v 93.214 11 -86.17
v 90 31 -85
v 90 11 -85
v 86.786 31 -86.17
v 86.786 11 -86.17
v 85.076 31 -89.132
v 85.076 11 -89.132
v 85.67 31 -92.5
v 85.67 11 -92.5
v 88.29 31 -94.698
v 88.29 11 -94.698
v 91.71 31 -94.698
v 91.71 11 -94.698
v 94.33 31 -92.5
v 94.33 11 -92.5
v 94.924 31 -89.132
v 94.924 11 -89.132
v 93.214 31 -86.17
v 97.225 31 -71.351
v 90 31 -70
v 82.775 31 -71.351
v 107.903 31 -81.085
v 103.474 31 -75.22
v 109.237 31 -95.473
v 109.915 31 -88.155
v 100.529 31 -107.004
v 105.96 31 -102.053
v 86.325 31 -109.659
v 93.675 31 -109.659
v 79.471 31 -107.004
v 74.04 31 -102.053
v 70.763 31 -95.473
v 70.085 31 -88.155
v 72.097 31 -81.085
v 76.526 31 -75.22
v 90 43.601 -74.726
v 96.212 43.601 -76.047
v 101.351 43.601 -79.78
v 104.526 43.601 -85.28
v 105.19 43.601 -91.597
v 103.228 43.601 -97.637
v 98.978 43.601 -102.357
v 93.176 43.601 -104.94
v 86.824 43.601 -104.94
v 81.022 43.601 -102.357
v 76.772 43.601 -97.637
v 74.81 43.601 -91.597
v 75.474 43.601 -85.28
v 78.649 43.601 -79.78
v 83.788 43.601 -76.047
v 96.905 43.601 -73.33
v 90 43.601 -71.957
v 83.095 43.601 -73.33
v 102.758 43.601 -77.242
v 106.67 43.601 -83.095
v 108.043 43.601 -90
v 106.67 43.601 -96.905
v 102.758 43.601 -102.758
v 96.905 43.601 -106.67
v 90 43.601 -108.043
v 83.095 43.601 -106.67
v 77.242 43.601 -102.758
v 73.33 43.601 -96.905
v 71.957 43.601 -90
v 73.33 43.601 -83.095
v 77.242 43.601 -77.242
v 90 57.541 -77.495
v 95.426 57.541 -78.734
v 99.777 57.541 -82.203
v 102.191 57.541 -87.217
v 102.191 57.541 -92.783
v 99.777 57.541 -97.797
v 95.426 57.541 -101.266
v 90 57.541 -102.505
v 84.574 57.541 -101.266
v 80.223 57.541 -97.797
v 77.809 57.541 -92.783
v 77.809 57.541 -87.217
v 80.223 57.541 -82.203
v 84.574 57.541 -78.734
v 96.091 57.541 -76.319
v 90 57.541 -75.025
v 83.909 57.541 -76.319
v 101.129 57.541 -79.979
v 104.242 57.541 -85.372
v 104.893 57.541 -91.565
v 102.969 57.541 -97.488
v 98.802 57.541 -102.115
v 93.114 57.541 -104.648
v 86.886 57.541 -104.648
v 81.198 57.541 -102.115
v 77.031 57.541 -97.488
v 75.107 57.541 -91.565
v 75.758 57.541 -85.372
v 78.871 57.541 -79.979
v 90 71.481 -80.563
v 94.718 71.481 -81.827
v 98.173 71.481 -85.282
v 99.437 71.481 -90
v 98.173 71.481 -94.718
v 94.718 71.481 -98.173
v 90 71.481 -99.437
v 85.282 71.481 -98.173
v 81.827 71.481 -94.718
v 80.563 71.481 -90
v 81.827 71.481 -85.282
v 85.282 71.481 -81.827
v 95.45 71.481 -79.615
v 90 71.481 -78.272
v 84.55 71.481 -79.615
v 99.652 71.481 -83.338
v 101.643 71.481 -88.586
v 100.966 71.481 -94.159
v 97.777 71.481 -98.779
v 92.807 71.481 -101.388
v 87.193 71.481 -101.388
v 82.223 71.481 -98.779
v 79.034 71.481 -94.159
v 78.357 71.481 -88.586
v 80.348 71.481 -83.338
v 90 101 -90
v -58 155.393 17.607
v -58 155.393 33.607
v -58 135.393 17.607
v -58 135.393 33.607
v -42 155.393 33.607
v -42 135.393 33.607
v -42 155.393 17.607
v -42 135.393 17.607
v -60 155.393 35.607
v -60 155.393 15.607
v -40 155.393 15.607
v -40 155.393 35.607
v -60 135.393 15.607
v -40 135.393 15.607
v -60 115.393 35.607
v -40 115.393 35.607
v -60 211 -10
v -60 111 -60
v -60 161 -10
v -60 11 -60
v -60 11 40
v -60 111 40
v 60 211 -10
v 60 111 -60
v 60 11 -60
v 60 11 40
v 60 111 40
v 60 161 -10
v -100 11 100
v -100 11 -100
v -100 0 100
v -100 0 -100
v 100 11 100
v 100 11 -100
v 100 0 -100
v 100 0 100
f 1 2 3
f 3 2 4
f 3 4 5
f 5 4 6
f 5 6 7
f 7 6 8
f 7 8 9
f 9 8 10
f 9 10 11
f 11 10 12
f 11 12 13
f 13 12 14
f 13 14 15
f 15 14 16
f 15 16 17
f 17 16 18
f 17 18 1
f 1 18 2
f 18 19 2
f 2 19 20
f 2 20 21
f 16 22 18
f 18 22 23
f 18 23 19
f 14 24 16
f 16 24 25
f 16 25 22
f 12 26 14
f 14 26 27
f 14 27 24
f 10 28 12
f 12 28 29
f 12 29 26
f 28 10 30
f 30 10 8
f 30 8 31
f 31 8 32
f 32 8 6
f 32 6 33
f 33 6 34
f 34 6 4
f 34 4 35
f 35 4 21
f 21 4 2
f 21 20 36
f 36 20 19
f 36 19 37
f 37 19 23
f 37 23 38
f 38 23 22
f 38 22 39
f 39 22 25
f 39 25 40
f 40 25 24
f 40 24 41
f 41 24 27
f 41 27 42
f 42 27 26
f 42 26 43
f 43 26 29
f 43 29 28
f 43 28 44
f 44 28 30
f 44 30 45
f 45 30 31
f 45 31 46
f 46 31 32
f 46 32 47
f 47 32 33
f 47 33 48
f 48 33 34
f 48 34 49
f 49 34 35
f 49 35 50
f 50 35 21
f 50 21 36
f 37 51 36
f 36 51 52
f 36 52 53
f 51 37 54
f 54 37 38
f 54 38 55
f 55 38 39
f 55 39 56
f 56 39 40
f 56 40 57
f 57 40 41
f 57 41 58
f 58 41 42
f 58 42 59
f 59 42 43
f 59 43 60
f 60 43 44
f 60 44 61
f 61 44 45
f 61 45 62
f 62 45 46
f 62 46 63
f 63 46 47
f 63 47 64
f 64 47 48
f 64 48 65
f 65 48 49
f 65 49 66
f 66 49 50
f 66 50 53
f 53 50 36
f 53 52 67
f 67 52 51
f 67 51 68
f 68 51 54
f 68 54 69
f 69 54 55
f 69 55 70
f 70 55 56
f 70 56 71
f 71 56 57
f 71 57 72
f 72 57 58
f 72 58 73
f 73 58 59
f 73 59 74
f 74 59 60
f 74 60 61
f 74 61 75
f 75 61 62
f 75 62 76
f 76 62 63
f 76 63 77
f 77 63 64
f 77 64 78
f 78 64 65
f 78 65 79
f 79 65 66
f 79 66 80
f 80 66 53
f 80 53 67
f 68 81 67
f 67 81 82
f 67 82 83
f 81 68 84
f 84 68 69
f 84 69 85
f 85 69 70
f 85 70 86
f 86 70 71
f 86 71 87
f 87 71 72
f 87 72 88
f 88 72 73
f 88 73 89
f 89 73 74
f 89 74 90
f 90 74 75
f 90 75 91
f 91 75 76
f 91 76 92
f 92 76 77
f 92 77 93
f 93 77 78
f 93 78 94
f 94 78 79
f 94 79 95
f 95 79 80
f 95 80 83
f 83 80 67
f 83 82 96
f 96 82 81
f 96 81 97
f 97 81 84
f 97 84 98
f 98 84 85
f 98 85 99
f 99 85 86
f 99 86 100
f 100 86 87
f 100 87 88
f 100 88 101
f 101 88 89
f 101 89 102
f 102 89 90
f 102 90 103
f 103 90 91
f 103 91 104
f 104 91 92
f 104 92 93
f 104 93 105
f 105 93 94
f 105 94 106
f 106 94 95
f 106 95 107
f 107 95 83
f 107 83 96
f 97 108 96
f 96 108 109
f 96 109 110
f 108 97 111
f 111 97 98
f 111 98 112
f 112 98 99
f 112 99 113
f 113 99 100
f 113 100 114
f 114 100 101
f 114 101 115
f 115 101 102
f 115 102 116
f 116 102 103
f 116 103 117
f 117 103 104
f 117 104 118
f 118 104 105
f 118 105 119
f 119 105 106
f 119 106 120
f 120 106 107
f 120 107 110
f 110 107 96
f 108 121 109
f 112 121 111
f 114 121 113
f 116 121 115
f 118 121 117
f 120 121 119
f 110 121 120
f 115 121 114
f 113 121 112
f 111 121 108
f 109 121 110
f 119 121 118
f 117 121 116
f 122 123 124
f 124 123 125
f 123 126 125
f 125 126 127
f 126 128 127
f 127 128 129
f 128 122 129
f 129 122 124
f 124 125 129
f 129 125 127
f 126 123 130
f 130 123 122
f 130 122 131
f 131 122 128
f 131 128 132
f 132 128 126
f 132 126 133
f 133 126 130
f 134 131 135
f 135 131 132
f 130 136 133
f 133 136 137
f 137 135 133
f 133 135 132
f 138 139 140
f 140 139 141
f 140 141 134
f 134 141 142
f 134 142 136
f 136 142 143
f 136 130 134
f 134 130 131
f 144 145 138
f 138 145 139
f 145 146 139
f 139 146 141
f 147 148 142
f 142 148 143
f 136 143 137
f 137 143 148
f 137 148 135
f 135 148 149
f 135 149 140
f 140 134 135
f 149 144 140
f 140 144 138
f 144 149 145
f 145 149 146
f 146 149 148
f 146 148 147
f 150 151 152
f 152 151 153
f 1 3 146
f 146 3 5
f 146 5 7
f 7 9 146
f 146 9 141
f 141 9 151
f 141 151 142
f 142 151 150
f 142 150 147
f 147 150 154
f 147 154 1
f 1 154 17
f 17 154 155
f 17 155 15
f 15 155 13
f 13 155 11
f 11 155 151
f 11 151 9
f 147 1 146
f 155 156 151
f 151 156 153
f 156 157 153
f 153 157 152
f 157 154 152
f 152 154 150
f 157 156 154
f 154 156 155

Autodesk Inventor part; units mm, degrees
sketch "Sketch1" plane through (0, 0, 0) normal (1, 0, 0) x (0, 1, 0)
  line L0 (11, 100) -> (0, 100)
  line L1 (0, 100) -> (0, -100)
  line L2 (0, -100) -> (11, -100)
  line L3 (11, -100) -> (11, 100)
  line L4 (-2.2, 0) -> (13.2, 0) projected
  line L5 (0, 140) -> (0, -140) projected
  point P0 (0, 0)
  point P1 (11, 0)
  dimension "d0" = 200
  dimension "d1" = 11
  dimension "d2" = 0
extrude "Extrusion1" add sketch "Sketch1" along normal mid plane 200
sketch "Sketch2" plane through (0, 0, 0) normal (1, 0, 0) x (0, 1, 0)
  line L0 (111, 40) -> (11, 40)
  line L1 (11, 40) -> (11, -60)
  line L2 (11, -60) -> (111, -60)
  line L3 (111, -60) -> (111, 40)
  line L4 (-32.1032, 0) -> (192.619, 0) projected
  line L5 (11, -100) -> (11, 100) projected
  line L6 (111, 40) -> (161, 40)
  line L7 (161, 40) -> (161, -10)
  line L8 (161, -10) -> (111, -10)
  line L9 (111, -10) -> (111, 40)
  line L10 (111, -60) -> (211, -60)
  line L11 (211, -60) -> (211, -10)
  line L12 (211, -10) -> (111, -10)
  line L13 (111, -10) -> (111, -60)
  line L14 (111, 40) -> (161, -10)
  line L15 (111, -60) -> (211, -10)
  point P0 (0, 0)
  dimension "d5" = 100
  dimension "d6" = 40
  dimension "d7" = 100
  dimension "d8" = 0
  dimension "d9" = 50
  dimension "d10" = 50
  dimension "d11" = 100
  dimension "d12" = 50
extrude "Extrusion2" add sketch "Sketch2" along normal mid plane 120 contours L3 L4 L1 L0 | L14 L4 L3 | L4 L14 L8 L3 | L3 L2 L1 L4 | L8 L12 L15 L3
sketch "Sketch3" plane through (-60, 0, 0) normal (-1, 0, 0) x (0, 0, 1)
  line L0 (15.607, 155.393) -> (35.607, 155.393)
  line L1 (35.607, 155.393) -> (35.607, 135.393)
  line L2 (35.607, 135.393) -> (15.607, 135.393)
  line L3 (15.607, 135.393) -> (15.607, 155.393)
  line L4 (40, 111) -> (-10, 161) projected
  line L5 (35.607, 135.393) -> (35.607, 115.393)
  line L6 (-10, 161) -> (40, 111) projected
  line L7 (15.607, 135.393) -> (35.607, 115.393)
  point P0 (0, 0)
  dimension "d15" = 20
  dimension "d16" = 20
  dimension "d17" = 4.393
extrude "Extrusion3" add sketch "Sketch3" against normal blind 20
sketch "Sketch4" plane through (-60, 155.393, 35.607) normal (0, 1, 0) x (1, 0, 0)
  line L0 (20, 20) -> (20, 0) projected
  line L1 (0, 20) -> (20, 20) projected
  line L2 (0, 0) -> (0, 20) projected
  line L3 (0, 0) -> (20, 0) projected
  line L4 (18, 2) -> (18, 18)
  line L5 (18, 18) -> (2, 18)
  line L6 (2, 18) -> (2, 2)
  line L7 (2, 2) -> (18, 2)
  point P0 (60, 35.607)
  dimension "d20" = 2
extrude "Extrusion4" cut sketch "Sketch4" against normal blind 20 contours L7 L6 L5 L4
sketch "Sketch5" plane through (-100, 11, 100) normal (0, 1, 0) x (1, 0, 0)
  line L0 (200, 200) -> (200, 0) projected
  line L1 (0, 200) -> (200, 200) projected
  point P0 (100, 100)
  point P1 (190, 190)
  dimension "d23" = 10
  dimension "d24" = 10
ref_plane "Work Plane1" through (90, 11, -90) normal (1, 0, 0) x (0, 1, 0)
sketch "Sketch7" plane through (90, 11, -90) normal (1, 0, 0) x (0, 1, 0)
  line L0 (0, -10) -> (0, 190) projected
  line L1 (0, 0) -> (20, 0)
  line L2 (20, 0) -> (20, 5)
  line L3 (20, 5) -> (0, 5)
  line L4 (0, 5) -> (0, 0)
  line L5 (20, 0) -> (20, 20)
  line L6 (90, 0) -> (60.481, 11.7284)
  line L7 (60.481, 11.7284) -> (60.481, 5)
  line L8 (60.481, 9.4368) -> (46.541, 14.9754)
  line L9 (46.541, 14.9754) -> (46.541, 5)
  line L10 (46.541, 12.5046) -> (32.601, 18.0432)
  line L11 (32.601, 18.0432) -> (32.601, 5)
  line L12 (32.601, 15.2739) -> (20, 20)
  line L13 (90, 0) -> (20, 0)
  point P0 (-11, 90)
  dimension "d25" = 20
  dimension "d26" = 5
  dimension "d27" = 20
  dimension "d28" = 15
  dimension "d29" = 15
revolve "Revolution1" add sketch "Sketch7" angle 360 about axis through (90, 101, -90) along (0, -1, 0)
properties part number "House_Assembly_Depth_Tracking"
